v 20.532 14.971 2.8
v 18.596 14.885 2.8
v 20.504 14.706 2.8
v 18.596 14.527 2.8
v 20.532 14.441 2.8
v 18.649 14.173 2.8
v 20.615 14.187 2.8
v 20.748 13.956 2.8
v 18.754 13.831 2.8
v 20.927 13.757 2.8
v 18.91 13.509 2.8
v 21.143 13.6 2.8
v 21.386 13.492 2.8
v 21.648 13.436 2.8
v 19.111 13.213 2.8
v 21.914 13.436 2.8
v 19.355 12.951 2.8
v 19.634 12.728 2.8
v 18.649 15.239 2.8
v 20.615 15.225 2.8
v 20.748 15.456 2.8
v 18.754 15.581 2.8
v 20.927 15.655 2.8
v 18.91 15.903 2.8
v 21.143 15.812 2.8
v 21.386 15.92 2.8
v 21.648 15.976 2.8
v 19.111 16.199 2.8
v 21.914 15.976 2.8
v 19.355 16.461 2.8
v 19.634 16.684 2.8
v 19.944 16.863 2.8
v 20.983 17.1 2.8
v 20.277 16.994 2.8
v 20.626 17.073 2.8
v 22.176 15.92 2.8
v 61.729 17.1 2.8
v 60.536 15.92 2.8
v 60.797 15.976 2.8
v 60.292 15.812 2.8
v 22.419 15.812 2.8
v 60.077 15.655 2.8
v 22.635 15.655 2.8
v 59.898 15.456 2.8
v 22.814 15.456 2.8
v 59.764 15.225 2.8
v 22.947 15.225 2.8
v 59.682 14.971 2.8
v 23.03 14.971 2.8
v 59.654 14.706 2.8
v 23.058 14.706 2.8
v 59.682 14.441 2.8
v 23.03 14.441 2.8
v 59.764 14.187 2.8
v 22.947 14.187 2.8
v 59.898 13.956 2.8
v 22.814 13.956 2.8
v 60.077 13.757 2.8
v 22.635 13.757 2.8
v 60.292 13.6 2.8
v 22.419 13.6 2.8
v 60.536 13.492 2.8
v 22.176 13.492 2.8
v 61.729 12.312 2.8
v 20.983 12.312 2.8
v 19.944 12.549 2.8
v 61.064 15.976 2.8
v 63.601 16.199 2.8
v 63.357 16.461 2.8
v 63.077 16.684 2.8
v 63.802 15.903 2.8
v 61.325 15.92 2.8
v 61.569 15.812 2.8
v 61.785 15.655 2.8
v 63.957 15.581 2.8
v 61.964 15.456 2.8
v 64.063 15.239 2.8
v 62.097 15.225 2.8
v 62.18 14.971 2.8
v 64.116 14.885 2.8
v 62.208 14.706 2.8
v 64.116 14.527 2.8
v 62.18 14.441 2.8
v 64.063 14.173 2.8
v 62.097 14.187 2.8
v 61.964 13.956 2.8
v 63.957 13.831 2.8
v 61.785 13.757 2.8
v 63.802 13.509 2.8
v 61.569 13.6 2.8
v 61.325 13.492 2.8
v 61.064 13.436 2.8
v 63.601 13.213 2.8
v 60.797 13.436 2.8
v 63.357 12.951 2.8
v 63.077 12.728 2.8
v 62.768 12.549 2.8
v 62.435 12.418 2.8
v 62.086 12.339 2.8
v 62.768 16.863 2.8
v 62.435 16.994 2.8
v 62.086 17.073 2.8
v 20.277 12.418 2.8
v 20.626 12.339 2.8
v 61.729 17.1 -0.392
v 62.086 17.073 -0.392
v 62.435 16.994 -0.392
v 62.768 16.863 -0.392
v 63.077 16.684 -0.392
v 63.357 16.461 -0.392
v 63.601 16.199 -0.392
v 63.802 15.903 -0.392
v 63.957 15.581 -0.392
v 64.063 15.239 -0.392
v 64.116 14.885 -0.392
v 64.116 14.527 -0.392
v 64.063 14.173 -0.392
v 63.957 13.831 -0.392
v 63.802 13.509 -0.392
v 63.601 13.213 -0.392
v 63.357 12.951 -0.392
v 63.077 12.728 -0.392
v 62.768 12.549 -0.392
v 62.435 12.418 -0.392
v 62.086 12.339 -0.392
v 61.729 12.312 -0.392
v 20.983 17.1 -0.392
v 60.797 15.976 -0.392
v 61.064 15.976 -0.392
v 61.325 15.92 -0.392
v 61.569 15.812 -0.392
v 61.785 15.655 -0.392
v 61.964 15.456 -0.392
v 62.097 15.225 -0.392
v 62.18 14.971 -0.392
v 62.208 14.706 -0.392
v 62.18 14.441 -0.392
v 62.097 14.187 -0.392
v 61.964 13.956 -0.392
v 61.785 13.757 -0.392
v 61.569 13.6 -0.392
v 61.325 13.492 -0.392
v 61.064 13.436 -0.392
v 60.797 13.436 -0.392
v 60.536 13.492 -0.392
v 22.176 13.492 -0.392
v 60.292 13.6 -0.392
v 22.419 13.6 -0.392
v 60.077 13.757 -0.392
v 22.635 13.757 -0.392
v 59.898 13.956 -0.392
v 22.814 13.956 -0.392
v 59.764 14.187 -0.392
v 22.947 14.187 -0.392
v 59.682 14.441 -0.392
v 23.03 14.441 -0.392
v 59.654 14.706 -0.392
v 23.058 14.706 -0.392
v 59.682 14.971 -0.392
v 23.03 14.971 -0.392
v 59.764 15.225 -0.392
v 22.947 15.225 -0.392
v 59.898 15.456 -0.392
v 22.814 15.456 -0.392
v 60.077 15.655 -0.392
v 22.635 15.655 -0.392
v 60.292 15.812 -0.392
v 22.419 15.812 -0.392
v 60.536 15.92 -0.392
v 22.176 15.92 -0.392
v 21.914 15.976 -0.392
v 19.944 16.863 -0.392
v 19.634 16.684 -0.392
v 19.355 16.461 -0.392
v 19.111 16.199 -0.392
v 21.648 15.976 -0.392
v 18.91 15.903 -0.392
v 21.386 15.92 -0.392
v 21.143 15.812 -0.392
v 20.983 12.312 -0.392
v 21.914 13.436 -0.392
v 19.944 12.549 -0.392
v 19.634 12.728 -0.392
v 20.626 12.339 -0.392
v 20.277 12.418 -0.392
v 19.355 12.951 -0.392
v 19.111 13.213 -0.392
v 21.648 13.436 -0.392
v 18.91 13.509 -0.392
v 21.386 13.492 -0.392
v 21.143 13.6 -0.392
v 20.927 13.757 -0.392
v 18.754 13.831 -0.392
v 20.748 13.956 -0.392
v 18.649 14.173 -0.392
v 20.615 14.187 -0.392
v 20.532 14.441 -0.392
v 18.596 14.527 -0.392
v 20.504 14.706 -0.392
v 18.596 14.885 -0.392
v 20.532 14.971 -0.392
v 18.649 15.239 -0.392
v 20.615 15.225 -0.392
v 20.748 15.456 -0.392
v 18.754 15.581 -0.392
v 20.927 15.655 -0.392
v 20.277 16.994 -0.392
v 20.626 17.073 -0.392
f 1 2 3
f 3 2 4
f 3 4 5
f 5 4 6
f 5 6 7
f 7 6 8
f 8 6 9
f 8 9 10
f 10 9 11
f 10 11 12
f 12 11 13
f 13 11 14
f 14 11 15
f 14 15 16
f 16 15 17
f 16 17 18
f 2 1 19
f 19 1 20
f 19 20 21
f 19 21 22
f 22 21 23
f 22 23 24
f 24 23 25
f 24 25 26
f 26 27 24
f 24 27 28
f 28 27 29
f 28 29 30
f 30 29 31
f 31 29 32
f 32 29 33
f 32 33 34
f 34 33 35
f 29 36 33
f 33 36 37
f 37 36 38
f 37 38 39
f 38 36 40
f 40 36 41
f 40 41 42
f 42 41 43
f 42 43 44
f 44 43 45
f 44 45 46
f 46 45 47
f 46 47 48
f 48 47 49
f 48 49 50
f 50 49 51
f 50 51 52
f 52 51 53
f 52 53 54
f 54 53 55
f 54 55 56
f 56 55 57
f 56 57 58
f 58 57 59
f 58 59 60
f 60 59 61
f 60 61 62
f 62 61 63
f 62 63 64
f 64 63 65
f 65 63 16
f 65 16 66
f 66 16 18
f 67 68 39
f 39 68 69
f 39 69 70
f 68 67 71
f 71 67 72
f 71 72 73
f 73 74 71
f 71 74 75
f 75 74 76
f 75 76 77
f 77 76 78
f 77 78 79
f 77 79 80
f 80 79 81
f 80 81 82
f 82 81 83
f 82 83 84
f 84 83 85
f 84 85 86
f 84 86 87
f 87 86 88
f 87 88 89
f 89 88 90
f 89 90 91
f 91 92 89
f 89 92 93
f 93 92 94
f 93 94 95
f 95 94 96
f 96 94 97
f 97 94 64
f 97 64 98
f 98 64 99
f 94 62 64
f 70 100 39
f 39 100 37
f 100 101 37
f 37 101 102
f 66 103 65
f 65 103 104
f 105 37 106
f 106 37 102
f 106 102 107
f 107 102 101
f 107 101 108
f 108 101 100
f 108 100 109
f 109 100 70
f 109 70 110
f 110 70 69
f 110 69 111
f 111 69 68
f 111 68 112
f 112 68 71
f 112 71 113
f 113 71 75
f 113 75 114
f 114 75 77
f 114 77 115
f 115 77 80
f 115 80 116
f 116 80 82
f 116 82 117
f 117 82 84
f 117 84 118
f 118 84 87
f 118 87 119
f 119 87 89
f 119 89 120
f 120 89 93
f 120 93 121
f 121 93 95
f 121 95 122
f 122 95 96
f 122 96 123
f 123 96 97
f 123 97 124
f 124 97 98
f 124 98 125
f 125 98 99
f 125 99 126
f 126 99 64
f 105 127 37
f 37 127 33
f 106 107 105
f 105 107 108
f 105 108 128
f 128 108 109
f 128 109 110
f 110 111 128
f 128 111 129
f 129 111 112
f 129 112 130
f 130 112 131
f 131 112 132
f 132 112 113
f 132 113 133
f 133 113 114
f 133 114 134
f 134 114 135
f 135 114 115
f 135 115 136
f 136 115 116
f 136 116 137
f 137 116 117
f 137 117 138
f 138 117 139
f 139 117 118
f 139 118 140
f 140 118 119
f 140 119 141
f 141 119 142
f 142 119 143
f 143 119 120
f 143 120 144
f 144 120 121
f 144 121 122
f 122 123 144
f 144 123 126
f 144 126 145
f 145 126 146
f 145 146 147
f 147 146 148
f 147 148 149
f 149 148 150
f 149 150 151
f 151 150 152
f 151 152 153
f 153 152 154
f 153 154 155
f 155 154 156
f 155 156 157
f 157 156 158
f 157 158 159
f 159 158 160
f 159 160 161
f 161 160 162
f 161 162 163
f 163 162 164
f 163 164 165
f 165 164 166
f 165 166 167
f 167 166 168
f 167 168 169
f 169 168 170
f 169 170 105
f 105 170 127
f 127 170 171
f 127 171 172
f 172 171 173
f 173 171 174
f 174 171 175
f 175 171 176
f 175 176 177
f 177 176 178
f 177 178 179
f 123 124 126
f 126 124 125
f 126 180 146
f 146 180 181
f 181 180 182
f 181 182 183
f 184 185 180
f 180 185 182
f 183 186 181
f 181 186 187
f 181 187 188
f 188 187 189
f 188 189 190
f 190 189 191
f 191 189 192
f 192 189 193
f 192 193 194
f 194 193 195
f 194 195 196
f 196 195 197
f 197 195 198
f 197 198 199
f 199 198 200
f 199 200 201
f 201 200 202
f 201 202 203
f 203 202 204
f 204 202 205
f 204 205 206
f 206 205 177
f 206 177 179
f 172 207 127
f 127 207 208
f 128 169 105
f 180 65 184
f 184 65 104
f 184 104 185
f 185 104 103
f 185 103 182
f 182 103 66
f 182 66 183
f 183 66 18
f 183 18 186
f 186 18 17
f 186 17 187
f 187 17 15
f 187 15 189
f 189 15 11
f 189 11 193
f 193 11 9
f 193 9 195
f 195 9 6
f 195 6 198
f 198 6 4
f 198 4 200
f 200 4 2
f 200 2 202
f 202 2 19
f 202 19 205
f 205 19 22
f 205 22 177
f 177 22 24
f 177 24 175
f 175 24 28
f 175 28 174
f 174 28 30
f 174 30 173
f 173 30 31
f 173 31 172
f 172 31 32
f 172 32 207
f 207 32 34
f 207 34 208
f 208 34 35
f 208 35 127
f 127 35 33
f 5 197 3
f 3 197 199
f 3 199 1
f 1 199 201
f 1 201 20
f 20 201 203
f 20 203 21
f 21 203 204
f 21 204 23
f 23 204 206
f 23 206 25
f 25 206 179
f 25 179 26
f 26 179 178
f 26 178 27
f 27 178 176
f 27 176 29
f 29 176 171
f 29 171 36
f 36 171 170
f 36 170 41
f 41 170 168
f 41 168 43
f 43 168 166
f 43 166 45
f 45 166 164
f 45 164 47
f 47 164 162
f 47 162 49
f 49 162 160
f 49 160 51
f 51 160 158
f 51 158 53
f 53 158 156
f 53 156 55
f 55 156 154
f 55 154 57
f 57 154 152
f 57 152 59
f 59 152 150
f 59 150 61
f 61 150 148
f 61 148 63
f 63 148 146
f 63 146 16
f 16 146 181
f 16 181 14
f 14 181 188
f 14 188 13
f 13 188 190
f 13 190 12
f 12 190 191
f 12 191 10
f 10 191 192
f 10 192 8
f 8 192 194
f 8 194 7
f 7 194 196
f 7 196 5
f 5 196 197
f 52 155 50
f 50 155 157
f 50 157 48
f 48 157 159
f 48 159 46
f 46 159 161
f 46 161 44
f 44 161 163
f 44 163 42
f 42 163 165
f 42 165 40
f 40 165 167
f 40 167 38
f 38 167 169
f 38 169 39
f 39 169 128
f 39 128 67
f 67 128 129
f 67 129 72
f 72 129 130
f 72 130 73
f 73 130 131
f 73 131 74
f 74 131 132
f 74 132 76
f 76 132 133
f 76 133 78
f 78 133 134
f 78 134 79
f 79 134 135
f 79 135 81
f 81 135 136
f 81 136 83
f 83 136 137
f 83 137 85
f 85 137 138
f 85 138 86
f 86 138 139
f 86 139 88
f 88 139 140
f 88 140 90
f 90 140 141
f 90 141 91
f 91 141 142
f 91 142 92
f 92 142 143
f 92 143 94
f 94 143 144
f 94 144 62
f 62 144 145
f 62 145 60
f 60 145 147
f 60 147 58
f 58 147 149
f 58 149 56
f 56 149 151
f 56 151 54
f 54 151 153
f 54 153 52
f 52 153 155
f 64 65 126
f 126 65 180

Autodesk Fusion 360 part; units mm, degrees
sketch "Esboço1" plane through (0, 0, 0) normal (0, 0, 1) x (1, 0, 0)
  line L0 (18.163, 18) -> (75.223, 18)
  line L1 (75.223, 18) -> (75.223, 12)
  line L2 (75.223, 12) -> (18.163, 12)
  line L3 (18.163, 12) -> (18.163, 18)
  circle A0 centre (22.163, 15) radius 1.6
  circle A1 centre (71.223, 15) radius 1.6
  dimension "d2" = 3.2
  dimension "d3" = 3.2
  dimension "d4" = 49.06
  dimension "d5" = 4
  dimension "d6" = 4
  dimension "d13" = 6
  dimension "d14" = 3
extrude "Extrusão1" add sketch "Esboço1" along normal blind 4
fillet "Arredondamento3" radius 3 2 edges at (18.163, 18, 2) (18.163, 12, 2)
fillet "Arredondamento4" radius 3 2 edges at (75.223, 18, 2) (75.223, 12, 2)
scale "Escala1" factor 0.7 about (20.563, 15, 0) bodies 1
scale "Escala2" factor 1.14 about (20.983, 17.1, 2.8) bodies 1
